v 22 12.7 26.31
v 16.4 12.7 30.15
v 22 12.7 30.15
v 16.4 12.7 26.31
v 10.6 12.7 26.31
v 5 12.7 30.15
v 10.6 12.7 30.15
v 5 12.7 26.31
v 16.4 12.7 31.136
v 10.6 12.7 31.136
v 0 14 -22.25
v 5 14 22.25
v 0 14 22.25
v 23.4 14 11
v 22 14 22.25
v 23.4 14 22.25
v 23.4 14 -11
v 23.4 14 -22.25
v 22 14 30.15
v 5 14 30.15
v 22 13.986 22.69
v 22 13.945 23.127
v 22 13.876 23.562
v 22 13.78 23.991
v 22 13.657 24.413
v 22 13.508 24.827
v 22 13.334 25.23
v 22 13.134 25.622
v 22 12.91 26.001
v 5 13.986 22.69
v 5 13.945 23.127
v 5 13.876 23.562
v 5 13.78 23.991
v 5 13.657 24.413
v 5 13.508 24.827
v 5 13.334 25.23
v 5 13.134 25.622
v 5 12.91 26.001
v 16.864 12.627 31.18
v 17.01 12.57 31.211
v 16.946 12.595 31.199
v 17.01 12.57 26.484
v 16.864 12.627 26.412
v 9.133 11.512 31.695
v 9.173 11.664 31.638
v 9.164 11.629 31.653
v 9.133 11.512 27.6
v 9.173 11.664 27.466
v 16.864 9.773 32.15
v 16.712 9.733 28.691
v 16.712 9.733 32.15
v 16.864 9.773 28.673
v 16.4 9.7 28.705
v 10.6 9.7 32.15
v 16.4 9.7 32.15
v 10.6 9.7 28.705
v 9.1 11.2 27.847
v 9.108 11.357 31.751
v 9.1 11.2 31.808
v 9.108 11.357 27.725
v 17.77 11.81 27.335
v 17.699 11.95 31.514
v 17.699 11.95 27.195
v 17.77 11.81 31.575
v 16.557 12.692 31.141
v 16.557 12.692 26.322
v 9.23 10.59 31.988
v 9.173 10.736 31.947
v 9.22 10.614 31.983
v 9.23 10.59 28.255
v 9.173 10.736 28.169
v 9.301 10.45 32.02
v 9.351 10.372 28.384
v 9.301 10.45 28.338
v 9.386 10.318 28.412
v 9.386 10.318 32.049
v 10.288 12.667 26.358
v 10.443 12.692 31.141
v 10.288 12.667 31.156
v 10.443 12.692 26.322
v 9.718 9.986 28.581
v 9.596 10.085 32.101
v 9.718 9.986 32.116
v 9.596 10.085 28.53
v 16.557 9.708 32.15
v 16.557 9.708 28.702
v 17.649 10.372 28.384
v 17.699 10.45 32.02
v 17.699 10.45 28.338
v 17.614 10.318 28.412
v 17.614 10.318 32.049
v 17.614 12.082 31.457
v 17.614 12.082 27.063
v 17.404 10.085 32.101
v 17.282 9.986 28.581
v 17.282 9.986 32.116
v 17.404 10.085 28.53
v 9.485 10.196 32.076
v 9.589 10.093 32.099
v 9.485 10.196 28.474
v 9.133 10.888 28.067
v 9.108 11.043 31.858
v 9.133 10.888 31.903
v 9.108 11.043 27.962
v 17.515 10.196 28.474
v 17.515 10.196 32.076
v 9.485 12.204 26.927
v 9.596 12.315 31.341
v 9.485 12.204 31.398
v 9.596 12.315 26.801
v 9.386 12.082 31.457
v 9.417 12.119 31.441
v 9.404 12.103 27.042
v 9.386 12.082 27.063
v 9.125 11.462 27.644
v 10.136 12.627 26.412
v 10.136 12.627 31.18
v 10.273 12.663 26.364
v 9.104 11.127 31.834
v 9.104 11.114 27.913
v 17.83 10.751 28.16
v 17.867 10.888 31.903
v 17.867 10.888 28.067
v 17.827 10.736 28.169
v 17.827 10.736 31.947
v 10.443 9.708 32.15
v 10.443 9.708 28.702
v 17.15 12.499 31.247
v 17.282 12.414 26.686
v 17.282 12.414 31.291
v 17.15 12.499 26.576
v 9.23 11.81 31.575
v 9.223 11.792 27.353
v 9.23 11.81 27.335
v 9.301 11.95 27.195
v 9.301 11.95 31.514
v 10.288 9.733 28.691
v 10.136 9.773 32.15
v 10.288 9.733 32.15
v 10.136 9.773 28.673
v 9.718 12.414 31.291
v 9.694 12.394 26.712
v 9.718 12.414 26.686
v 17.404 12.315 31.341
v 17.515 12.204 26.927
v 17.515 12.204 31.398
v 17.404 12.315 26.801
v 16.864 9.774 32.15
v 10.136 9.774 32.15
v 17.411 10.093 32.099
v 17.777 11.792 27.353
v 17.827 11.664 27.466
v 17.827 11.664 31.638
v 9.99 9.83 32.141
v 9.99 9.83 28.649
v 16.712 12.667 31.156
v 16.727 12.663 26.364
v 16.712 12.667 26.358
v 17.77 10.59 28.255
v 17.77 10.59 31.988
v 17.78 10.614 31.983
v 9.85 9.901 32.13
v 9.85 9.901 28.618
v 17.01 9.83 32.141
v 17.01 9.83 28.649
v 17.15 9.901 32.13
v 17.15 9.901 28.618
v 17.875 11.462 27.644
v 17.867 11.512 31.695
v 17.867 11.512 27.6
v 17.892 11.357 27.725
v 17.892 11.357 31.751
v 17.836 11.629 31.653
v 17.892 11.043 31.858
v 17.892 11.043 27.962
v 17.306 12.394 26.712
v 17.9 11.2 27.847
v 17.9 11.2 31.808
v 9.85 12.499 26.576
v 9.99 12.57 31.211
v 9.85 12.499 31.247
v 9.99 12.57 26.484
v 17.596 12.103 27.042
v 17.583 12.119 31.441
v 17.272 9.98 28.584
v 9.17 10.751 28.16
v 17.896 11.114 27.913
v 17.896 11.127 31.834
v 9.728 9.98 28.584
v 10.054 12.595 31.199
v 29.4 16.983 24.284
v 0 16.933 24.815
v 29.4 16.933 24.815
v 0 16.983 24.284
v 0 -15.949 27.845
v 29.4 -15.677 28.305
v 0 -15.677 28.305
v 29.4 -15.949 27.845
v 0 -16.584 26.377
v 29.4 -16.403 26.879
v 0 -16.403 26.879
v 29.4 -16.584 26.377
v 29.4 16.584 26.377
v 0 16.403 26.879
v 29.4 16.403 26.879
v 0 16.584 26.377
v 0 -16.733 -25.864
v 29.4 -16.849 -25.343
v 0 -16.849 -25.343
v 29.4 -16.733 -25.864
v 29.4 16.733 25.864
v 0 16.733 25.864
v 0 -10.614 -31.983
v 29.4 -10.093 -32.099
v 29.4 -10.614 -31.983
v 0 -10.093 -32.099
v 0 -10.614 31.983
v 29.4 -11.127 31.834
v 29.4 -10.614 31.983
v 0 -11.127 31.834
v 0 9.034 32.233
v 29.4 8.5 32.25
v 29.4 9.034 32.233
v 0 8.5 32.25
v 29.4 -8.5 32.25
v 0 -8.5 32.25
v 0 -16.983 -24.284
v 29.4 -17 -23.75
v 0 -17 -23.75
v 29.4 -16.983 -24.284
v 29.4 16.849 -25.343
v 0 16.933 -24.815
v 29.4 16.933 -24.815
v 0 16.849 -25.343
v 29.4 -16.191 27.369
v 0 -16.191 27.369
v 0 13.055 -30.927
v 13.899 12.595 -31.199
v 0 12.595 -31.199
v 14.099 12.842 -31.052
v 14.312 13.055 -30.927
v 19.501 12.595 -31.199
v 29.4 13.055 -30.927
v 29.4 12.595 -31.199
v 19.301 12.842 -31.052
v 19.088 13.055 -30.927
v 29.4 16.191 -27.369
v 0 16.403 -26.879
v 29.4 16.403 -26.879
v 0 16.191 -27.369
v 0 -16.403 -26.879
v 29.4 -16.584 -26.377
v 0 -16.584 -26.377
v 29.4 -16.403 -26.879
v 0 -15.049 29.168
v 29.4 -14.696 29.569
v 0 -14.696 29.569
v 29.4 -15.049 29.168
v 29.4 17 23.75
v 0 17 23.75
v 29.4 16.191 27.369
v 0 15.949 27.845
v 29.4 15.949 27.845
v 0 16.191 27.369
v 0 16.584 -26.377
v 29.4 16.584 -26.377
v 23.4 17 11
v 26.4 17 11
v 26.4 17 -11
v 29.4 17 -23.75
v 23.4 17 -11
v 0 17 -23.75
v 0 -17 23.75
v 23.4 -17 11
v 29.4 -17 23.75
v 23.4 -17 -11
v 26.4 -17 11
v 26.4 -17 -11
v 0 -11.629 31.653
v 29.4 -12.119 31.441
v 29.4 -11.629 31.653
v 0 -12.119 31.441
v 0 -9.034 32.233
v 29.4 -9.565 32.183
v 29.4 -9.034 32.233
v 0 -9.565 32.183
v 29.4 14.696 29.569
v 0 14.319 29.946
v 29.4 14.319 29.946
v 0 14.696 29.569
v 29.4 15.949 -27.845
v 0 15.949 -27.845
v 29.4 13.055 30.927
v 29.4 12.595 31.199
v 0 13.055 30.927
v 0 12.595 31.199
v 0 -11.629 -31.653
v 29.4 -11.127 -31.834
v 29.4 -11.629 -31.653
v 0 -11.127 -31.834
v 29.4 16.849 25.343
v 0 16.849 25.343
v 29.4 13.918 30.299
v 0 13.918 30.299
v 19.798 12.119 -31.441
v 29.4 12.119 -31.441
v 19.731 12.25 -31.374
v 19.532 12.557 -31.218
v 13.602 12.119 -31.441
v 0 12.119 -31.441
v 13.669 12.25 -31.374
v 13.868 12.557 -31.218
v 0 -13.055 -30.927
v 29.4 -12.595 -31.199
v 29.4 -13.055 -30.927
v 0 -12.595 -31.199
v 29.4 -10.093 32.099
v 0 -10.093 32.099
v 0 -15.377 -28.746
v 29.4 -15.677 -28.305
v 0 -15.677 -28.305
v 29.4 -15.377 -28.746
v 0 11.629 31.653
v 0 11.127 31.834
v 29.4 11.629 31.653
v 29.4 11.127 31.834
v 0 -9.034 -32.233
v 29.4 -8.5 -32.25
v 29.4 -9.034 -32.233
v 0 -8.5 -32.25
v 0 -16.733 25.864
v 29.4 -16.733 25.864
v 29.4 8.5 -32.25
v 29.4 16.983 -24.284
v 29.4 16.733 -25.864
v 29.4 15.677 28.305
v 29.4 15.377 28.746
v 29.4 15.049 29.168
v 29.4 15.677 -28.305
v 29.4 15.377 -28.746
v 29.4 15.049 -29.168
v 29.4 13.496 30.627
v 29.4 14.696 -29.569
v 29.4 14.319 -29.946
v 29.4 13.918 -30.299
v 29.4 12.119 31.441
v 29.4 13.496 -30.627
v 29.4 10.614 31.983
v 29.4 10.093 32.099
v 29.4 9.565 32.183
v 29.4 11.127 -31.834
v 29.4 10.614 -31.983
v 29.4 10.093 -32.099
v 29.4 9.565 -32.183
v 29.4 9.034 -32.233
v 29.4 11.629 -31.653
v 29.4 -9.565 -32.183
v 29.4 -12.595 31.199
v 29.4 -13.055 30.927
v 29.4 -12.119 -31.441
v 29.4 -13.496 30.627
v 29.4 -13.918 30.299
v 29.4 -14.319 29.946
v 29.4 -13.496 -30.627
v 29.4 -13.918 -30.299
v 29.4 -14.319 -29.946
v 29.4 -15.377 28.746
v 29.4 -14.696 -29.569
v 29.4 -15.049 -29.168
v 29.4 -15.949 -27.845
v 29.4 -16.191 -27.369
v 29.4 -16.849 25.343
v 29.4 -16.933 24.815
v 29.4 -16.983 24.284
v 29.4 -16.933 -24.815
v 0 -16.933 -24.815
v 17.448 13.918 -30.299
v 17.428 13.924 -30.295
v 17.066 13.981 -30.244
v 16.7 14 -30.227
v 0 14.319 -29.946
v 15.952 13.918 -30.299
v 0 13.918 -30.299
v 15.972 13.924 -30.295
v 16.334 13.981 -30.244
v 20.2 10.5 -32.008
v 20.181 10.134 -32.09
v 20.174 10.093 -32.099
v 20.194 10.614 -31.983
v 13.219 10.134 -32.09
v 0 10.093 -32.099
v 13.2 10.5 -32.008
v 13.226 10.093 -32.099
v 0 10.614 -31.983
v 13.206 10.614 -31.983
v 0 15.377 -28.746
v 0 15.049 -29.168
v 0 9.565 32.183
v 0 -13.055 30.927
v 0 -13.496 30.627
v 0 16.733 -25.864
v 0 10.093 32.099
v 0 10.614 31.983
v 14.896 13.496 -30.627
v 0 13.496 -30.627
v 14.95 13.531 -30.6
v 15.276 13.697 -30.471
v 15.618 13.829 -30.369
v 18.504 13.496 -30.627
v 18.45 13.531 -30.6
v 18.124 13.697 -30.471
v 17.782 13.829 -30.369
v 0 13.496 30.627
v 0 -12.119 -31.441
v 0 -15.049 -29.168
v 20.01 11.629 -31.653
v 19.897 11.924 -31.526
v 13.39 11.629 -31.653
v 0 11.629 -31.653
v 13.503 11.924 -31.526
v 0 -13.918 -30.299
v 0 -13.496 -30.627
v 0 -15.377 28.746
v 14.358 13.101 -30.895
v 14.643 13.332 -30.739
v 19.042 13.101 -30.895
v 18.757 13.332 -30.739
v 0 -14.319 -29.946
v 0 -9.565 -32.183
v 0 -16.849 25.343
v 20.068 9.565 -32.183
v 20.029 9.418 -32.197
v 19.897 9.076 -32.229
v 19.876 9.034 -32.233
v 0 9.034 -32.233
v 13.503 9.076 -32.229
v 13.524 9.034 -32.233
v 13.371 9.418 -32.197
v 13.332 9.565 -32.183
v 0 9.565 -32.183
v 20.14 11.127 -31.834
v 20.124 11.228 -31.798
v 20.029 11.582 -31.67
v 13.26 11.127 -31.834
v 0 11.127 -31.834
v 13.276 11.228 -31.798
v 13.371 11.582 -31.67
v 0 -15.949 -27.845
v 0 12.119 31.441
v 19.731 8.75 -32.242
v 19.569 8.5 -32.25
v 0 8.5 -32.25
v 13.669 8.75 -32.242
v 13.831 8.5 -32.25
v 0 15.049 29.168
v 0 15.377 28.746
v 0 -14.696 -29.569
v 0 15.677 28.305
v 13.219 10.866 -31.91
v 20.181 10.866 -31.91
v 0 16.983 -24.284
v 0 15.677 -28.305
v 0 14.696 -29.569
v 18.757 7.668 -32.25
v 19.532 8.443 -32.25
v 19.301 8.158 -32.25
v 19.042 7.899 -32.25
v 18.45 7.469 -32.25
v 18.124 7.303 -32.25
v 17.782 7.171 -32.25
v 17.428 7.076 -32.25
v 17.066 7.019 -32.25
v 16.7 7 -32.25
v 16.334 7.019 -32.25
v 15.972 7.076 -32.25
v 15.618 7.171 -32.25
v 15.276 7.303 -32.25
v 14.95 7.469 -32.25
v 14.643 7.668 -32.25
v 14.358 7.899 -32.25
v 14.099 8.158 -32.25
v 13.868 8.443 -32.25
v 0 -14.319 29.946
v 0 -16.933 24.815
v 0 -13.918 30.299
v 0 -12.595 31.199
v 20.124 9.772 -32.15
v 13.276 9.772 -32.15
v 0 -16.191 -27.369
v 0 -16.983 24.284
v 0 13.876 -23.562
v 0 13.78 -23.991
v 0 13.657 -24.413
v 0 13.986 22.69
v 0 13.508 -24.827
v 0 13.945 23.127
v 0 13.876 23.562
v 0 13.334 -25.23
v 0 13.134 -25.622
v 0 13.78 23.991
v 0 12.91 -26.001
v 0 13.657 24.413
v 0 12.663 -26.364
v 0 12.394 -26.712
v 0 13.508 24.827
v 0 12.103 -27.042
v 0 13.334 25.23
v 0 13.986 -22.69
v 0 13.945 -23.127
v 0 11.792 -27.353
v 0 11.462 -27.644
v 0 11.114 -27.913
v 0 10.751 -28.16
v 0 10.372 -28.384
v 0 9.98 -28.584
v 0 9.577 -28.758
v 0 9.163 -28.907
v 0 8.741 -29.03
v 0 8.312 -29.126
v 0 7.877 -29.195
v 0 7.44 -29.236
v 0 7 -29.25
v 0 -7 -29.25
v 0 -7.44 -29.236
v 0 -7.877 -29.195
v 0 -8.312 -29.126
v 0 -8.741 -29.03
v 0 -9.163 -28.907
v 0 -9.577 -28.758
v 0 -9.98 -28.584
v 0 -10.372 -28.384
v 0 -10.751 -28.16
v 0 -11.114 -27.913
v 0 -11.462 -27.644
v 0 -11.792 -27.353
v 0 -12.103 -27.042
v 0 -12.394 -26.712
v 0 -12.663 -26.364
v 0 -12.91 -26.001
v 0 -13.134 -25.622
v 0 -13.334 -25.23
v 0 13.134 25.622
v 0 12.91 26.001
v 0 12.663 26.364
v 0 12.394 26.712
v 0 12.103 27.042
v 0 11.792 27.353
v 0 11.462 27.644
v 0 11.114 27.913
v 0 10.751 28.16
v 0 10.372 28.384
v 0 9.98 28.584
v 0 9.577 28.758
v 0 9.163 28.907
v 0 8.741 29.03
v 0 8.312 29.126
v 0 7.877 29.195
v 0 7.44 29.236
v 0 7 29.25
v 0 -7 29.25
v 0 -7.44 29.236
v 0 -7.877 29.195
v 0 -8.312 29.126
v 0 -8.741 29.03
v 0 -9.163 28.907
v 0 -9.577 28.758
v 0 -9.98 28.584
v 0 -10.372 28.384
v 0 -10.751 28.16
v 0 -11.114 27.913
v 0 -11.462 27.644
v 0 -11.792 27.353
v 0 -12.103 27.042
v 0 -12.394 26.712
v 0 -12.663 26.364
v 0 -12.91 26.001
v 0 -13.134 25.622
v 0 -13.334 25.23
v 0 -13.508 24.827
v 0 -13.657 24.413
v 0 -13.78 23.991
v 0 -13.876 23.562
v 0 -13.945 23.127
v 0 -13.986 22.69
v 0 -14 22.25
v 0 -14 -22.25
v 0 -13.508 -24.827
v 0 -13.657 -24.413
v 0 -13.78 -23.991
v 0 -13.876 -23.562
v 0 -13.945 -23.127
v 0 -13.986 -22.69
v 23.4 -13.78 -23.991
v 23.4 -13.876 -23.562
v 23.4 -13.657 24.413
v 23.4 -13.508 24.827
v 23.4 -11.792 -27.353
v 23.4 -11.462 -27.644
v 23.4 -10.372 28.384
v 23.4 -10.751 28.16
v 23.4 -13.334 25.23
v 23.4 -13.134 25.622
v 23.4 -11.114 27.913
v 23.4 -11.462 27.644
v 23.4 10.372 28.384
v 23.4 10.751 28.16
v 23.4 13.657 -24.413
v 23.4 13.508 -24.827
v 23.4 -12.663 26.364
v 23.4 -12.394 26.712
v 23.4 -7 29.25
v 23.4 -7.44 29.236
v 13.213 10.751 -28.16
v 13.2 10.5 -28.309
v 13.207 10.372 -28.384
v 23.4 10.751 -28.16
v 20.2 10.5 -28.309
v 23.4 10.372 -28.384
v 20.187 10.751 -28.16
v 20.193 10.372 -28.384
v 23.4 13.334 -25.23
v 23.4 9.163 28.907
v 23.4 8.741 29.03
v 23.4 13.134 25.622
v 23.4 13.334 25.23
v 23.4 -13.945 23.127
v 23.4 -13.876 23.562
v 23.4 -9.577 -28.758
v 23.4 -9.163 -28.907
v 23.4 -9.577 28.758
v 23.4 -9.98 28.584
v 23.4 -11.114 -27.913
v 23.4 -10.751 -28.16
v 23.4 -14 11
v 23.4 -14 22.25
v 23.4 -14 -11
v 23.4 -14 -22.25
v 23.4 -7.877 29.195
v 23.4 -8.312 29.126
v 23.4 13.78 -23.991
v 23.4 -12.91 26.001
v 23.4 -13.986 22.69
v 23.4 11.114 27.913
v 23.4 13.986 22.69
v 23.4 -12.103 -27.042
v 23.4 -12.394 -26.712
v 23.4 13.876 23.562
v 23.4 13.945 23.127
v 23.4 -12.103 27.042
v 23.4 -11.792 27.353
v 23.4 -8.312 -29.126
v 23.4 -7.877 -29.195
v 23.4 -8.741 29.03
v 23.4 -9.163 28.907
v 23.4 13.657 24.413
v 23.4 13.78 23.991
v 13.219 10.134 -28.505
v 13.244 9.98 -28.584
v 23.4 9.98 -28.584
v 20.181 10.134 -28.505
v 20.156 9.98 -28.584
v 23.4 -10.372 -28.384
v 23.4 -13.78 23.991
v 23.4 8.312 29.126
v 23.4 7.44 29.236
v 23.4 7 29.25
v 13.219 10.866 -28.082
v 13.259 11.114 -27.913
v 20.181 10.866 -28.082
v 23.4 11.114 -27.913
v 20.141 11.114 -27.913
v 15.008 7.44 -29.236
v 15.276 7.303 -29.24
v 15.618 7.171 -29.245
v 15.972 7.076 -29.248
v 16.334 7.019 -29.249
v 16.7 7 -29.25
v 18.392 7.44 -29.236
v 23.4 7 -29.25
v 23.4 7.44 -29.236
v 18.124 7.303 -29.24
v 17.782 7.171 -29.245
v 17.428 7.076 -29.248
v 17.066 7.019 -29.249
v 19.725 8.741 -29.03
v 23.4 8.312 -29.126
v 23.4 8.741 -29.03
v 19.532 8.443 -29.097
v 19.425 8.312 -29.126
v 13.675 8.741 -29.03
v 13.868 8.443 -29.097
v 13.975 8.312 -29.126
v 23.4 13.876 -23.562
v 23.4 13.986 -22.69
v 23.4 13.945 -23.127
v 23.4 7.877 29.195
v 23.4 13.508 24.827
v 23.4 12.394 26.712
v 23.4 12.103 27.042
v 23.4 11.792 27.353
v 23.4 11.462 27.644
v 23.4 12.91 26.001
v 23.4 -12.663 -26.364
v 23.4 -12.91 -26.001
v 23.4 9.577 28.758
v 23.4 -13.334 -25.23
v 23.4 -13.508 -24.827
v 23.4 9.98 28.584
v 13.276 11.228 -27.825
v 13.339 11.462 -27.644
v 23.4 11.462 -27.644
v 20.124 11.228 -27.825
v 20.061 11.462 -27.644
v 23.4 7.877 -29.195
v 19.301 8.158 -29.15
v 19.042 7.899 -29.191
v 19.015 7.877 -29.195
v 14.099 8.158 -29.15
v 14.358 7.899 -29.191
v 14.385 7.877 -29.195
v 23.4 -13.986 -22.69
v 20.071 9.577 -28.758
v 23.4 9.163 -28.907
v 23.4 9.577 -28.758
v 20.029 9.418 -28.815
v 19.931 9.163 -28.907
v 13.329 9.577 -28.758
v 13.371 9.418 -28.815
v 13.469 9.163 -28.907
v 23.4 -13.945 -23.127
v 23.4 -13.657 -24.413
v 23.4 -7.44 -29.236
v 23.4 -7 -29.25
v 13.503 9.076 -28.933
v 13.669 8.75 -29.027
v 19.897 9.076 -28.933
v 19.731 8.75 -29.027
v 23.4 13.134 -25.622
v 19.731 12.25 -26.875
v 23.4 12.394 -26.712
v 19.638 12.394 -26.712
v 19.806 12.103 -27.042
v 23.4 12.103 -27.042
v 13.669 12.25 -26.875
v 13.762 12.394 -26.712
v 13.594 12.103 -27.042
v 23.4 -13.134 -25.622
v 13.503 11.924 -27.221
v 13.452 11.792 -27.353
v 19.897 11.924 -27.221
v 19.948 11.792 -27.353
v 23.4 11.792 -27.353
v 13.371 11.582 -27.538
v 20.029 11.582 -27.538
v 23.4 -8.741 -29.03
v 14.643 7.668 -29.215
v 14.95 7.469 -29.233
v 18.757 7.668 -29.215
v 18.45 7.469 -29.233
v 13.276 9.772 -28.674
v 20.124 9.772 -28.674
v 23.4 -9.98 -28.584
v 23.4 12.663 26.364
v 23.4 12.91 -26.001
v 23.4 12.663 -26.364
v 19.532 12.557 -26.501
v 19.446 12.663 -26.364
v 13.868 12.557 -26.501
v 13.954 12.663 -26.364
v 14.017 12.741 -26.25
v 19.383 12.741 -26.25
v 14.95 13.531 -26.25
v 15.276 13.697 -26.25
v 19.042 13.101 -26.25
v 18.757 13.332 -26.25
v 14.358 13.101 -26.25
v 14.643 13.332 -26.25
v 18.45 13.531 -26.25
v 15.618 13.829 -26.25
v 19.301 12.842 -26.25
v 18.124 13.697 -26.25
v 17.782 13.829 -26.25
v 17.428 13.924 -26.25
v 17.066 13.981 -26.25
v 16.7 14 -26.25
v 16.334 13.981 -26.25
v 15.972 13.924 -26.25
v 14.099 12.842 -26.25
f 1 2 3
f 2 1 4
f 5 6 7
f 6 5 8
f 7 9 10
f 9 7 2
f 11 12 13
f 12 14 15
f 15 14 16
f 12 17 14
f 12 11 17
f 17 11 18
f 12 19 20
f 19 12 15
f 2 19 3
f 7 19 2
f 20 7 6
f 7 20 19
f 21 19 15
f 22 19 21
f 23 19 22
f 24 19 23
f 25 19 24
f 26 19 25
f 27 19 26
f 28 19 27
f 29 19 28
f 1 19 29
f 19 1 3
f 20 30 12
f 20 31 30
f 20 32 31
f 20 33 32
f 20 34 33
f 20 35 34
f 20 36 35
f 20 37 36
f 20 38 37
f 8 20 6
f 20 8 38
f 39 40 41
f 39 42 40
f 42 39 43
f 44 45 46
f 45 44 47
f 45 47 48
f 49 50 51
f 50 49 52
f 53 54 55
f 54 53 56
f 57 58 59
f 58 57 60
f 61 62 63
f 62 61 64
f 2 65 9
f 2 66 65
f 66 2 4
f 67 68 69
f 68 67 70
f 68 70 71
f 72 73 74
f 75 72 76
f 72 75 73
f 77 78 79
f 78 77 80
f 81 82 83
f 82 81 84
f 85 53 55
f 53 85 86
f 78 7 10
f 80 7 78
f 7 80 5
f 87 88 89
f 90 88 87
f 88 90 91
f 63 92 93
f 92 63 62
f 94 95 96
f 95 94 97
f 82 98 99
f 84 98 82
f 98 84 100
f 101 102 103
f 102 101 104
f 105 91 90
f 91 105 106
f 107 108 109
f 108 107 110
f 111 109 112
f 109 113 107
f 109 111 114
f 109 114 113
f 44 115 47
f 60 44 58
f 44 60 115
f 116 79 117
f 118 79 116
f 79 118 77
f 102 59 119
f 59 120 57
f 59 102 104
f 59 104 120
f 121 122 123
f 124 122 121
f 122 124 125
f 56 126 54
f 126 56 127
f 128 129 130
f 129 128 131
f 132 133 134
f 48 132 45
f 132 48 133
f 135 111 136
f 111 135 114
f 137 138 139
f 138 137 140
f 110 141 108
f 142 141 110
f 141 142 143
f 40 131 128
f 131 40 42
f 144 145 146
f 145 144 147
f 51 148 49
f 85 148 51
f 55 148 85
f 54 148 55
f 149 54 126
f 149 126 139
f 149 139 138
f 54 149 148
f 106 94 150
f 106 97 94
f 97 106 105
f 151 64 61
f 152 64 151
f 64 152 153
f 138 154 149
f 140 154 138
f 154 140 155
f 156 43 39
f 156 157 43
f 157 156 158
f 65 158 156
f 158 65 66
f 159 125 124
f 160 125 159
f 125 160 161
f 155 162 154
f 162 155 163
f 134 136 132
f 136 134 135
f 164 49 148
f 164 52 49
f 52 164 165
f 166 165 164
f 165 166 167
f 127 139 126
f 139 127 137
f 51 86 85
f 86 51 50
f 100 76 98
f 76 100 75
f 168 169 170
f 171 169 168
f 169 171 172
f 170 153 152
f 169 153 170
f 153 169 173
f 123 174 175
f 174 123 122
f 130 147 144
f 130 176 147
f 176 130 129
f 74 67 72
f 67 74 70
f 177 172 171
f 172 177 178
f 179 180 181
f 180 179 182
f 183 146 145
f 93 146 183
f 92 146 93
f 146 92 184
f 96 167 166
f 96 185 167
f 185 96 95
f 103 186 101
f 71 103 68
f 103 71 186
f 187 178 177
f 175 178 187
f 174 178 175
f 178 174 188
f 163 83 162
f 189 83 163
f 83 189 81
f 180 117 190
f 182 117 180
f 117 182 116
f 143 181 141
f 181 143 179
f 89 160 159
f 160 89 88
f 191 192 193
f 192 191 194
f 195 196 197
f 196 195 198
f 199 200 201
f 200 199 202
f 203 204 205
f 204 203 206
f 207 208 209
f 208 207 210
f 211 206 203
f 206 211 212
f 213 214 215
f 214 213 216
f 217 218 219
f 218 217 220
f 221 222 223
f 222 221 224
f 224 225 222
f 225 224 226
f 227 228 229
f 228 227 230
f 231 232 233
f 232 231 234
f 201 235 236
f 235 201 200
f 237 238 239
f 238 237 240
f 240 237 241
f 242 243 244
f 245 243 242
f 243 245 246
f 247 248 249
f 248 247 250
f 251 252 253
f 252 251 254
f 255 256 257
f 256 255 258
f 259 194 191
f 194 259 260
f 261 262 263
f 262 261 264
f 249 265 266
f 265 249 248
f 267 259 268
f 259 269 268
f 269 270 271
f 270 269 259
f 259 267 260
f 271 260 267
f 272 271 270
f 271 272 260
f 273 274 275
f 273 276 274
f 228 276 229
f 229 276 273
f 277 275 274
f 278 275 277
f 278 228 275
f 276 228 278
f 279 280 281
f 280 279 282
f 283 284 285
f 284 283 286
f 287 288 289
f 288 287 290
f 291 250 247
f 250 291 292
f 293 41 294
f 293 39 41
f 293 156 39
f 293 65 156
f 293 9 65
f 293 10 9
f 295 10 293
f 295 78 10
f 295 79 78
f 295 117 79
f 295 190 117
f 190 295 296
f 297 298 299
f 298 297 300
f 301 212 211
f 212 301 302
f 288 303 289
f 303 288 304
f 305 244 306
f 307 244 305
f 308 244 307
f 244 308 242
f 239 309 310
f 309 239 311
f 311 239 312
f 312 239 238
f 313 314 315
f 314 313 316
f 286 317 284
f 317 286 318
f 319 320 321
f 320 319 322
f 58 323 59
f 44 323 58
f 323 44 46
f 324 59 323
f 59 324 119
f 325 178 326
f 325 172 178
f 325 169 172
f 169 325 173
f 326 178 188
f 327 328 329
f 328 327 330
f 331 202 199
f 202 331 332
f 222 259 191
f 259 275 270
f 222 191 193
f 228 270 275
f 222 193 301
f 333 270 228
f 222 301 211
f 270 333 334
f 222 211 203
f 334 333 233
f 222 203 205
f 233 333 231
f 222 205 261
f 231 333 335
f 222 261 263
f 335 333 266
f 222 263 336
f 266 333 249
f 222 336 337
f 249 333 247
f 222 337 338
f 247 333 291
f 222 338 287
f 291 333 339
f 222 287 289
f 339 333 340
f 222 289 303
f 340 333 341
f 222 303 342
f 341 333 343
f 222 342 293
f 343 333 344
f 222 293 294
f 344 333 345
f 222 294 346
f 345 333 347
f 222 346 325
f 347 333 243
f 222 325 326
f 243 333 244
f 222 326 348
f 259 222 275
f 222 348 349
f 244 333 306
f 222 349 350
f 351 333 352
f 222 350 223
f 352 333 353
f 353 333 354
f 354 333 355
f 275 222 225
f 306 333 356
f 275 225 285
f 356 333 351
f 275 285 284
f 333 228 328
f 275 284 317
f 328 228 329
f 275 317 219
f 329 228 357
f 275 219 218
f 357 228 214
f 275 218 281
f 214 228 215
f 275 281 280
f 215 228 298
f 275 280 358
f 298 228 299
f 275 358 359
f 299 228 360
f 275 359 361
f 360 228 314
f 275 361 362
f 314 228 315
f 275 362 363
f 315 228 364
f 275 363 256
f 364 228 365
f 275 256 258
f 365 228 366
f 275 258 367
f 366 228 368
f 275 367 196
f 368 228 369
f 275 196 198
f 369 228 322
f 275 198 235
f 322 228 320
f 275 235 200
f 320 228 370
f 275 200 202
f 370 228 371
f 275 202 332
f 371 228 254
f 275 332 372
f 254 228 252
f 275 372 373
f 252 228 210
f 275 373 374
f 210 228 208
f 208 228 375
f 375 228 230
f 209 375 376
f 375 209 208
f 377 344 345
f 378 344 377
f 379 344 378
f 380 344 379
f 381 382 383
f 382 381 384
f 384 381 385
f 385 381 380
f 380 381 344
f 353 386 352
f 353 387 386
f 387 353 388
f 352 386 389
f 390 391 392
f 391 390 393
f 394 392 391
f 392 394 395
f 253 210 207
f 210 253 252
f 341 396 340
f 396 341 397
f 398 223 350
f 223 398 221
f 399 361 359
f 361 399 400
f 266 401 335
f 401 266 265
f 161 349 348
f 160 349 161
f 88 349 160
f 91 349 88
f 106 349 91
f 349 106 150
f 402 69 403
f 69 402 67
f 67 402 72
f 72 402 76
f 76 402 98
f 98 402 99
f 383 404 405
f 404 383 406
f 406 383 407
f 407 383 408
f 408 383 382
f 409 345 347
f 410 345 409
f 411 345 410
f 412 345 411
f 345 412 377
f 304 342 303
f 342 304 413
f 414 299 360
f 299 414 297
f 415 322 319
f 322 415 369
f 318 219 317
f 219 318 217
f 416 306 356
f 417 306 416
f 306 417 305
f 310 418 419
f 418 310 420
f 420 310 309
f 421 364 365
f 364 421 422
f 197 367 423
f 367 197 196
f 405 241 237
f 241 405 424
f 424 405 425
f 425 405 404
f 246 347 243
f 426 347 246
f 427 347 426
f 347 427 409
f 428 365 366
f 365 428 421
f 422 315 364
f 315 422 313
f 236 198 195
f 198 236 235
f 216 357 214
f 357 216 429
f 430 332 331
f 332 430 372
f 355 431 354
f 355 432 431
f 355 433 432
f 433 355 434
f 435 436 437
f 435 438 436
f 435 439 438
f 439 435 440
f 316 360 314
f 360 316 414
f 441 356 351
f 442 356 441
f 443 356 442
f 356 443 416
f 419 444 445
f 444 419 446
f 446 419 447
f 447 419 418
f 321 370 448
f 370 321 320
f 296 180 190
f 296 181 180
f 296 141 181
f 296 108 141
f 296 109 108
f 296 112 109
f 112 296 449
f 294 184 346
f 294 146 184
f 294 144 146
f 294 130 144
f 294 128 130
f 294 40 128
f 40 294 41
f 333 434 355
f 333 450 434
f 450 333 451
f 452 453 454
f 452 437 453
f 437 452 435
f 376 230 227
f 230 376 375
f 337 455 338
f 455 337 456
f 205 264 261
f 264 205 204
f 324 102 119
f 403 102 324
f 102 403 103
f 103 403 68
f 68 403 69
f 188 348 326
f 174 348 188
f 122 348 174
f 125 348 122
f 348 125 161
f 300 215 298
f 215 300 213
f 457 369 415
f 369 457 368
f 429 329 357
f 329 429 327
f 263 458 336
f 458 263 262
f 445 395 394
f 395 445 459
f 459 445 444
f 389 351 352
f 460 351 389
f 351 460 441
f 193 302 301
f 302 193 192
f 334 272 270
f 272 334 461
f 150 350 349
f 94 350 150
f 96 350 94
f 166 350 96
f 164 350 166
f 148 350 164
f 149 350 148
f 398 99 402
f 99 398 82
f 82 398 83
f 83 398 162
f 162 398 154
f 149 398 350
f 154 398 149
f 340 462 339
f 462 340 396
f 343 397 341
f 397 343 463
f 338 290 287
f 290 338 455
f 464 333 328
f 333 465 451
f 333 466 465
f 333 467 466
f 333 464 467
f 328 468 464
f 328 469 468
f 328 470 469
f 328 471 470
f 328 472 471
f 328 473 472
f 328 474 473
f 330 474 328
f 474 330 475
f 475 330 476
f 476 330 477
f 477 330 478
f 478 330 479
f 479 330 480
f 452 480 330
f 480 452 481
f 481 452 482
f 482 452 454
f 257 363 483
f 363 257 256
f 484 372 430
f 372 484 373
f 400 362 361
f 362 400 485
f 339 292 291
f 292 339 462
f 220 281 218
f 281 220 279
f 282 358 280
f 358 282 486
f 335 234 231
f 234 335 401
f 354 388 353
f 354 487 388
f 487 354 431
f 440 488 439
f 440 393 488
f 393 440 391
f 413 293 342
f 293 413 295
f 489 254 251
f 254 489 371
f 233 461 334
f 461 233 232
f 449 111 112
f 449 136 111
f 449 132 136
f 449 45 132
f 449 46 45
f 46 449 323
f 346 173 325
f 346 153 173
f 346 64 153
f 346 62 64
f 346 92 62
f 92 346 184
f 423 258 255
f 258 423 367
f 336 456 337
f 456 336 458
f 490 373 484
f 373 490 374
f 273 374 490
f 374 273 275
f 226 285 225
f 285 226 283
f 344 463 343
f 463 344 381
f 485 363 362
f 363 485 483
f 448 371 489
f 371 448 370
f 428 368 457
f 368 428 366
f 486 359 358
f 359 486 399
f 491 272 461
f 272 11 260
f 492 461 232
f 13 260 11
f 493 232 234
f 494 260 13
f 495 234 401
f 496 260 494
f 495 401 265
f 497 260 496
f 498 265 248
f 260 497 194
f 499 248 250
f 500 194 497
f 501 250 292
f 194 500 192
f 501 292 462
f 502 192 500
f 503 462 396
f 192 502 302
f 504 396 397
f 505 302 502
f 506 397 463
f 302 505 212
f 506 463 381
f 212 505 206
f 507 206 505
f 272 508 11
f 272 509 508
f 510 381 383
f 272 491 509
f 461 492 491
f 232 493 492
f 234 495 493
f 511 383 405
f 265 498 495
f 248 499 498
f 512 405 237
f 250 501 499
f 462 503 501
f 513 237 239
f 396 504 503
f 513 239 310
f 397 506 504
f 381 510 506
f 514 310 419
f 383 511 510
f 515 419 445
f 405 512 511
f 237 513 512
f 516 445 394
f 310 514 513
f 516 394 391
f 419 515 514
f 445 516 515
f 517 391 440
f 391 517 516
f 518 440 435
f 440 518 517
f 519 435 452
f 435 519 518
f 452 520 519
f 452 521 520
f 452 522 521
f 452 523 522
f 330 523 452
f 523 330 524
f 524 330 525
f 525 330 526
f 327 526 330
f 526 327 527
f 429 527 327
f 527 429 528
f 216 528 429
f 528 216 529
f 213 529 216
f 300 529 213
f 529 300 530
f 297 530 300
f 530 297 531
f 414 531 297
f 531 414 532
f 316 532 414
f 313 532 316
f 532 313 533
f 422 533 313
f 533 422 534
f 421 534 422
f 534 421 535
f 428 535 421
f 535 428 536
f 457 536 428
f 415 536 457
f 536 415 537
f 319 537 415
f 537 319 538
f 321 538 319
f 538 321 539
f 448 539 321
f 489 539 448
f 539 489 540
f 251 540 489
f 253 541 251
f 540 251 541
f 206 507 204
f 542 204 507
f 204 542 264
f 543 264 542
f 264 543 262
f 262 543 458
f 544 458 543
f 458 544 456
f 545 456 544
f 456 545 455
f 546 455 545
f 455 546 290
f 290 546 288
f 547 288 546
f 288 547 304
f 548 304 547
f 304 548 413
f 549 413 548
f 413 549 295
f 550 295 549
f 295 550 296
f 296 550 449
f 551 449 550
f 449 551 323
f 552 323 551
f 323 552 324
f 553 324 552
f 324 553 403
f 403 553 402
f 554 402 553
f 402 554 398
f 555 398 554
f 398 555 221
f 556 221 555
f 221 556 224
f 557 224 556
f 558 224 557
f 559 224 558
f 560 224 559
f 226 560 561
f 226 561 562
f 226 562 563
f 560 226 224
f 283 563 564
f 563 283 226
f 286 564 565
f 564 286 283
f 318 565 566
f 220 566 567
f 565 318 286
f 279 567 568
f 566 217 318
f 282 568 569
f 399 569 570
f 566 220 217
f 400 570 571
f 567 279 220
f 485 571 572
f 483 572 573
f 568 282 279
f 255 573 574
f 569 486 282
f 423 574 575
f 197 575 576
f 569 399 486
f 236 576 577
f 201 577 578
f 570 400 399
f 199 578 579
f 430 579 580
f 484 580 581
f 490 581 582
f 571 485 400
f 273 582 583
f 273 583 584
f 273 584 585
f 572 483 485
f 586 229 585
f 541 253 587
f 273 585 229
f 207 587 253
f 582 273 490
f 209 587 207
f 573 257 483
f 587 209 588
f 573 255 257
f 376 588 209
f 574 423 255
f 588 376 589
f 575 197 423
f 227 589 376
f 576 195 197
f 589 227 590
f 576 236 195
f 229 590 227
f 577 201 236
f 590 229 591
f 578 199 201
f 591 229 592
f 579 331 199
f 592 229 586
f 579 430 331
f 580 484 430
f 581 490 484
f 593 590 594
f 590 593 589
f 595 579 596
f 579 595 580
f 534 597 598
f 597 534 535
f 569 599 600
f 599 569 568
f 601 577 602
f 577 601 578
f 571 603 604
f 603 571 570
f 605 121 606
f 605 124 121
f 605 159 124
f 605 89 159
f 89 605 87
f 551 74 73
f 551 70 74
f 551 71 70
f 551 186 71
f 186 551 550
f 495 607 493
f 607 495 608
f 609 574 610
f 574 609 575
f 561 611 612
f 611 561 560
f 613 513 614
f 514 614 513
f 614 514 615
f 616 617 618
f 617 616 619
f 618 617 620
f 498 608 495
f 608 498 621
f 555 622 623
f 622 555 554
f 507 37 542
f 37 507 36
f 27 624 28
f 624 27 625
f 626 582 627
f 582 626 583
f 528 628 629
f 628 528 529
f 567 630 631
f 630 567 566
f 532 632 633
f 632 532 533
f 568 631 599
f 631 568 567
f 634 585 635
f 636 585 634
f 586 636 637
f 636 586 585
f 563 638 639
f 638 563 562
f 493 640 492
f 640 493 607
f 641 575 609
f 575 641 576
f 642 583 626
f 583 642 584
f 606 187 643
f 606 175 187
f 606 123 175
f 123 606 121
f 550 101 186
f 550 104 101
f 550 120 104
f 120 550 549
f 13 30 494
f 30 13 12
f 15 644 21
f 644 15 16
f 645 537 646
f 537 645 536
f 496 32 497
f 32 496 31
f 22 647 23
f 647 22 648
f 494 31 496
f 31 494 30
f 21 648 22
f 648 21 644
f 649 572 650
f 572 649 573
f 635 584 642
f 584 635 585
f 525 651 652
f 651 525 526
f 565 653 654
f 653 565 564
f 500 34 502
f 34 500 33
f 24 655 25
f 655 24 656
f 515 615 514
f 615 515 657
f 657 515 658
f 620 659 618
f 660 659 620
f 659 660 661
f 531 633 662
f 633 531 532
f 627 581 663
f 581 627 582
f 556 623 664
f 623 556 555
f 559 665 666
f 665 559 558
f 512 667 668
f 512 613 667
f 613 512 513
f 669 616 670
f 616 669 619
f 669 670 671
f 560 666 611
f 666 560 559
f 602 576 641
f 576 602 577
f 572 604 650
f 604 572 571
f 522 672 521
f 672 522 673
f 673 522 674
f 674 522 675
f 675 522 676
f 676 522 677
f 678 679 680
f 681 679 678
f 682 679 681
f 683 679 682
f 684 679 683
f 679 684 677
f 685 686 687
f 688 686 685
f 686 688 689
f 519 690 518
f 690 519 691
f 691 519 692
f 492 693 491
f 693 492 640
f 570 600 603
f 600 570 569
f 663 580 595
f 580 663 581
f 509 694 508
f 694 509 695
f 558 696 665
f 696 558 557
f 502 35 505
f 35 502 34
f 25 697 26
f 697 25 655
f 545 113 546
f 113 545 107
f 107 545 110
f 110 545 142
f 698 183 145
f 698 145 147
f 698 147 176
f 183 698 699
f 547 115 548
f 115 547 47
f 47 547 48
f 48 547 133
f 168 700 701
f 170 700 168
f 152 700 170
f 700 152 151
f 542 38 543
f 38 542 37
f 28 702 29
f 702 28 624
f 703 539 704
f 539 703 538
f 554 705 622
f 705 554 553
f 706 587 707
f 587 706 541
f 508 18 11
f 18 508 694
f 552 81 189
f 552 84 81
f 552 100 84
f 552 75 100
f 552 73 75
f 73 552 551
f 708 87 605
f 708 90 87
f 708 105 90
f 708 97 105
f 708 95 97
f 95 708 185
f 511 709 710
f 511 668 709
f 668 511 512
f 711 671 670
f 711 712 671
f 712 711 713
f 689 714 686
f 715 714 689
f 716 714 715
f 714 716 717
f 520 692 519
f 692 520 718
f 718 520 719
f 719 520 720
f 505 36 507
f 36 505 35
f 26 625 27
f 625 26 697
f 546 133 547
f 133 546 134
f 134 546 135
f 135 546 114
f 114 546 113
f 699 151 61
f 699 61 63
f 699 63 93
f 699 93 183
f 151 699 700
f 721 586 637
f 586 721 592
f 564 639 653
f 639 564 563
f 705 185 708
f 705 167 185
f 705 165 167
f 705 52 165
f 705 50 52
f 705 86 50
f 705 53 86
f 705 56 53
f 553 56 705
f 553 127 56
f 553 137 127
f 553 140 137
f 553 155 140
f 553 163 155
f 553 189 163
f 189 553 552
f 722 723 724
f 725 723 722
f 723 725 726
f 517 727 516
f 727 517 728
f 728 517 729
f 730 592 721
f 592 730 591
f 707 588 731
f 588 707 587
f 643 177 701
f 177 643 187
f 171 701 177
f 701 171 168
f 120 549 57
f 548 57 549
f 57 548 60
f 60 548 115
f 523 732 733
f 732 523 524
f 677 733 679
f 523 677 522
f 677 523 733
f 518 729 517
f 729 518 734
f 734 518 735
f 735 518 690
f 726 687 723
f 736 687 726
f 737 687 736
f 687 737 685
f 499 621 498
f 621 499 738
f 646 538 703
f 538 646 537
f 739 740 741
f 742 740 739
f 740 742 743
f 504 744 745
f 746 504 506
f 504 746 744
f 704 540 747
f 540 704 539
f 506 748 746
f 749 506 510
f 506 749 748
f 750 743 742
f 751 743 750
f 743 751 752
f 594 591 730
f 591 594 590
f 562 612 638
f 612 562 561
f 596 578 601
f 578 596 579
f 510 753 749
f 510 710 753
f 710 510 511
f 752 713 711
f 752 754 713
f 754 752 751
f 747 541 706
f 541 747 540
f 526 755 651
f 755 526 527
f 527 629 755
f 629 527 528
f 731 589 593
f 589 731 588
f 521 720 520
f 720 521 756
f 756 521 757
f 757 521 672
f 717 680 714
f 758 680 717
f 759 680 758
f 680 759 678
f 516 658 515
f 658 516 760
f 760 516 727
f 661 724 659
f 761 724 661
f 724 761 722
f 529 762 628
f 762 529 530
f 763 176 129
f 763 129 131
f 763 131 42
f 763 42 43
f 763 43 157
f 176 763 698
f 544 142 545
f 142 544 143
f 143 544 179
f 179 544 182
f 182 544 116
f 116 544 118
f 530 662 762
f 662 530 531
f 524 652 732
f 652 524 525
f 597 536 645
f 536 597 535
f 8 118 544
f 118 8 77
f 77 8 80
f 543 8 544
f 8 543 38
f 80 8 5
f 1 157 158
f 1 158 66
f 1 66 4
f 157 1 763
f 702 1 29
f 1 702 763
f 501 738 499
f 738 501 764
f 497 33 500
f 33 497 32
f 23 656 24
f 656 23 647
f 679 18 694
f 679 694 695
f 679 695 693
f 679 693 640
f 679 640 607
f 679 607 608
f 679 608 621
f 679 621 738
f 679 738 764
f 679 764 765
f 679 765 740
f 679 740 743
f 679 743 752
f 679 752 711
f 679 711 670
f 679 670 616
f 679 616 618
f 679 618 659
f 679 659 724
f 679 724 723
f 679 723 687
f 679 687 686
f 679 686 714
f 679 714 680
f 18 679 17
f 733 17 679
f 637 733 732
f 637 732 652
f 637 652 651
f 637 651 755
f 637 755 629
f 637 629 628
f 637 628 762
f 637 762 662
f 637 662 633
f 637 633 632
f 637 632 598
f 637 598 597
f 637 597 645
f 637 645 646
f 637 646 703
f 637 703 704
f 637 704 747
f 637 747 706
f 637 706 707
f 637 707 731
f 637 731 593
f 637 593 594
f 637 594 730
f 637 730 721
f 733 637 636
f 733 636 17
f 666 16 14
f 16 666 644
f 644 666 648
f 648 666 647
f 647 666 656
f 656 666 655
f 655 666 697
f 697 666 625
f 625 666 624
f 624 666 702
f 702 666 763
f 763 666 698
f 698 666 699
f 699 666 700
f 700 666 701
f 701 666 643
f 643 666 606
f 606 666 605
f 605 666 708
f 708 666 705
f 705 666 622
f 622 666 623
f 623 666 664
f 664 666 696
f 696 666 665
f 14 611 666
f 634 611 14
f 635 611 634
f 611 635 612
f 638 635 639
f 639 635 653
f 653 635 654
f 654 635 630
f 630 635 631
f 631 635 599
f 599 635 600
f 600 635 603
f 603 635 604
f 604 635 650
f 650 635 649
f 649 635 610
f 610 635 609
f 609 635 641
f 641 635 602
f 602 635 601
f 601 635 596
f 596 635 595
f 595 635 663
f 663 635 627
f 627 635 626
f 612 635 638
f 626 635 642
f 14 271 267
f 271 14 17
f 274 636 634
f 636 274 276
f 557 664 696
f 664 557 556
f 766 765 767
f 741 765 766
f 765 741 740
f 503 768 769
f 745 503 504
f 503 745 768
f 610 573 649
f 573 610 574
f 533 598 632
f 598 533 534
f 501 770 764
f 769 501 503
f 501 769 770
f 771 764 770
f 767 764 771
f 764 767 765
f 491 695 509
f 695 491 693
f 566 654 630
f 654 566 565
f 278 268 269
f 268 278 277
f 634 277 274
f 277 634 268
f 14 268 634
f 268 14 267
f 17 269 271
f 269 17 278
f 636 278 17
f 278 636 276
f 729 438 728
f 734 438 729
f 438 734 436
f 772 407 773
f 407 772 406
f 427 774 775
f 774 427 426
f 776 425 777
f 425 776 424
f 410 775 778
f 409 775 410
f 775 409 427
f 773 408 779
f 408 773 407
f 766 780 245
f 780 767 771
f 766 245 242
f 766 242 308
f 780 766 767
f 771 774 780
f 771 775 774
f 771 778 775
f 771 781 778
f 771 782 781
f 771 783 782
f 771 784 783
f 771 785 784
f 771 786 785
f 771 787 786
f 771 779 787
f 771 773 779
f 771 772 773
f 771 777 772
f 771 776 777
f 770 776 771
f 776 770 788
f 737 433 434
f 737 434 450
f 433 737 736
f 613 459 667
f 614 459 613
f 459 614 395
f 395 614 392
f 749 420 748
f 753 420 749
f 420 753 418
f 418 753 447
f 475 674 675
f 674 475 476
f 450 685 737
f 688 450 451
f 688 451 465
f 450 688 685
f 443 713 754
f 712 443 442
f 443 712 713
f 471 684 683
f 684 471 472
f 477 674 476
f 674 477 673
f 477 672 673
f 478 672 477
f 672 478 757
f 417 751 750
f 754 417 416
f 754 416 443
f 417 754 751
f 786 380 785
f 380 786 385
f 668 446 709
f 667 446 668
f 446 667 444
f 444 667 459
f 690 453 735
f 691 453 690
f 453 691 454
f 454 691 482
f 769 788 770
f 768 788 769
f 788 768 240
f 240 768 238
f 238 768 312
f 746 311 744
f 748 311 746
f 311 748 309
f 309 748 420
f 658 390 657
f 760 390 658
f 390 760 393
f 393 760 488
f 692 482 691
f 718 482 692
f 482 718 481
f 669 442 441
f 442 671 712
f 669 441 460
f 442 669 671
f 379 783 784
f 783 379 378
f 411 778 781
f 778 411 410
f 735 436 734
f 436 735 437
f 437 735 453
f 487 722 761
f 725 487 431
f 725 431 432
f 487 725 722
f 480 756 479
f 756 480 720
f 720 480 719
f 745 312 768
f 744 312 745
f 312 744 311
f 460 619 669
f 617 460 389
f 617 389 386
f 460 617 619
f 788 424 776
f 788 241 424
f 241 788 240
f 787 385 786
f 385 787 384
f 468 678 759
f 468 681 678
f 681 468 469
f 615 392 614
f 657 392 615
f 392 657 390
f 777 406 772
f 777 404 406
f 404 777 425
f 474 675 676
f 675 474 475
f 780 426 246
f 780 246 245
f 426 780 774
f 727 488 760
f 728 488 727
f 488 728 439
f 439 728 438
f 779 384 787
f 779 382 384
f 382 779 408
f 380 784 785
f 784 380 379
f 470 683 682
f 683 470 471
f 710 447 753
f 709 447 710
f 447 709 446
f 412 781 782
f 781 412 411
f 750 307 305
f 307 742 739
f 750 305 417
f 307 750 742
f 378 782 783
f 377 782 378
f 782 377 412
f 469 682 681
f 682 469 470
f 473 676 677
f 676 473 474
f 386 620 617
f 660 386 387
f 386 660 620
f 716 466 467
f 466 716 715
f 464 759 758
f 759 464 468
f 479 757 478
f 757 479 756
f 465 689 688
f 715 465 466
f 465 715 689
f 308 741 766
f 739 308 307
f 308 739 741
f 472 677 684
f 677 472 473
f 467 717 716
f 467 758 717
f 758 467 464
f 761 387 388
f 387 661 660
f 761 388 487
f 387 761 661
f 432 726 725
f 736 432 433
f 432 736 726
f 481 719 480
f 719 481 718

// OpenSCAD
include <../../Household/references.scad>

// Define variables for the dimensions and hole positions in millimeters

width_capacitor_transistor_ES = 12;
height_capacitor_transistor_ES = 12;

//extra size to accomodate size of the leds on the glass panel
extra_length_size = 5; 

length_object = 18.4 + extra_length_size;   //X
width_object = 28;    //Y
height_object = 46.5 + width_capacitor_transistor_ES;  //Z



wall_thickness = 3;

length_perimeter = length_object + (wall_thickness*2);
width_perimeter = width_object +(wall_thickness*2);
height_perimeter = height_object +(wall_thickness*2);


module hole_for_lamp(length_parametric,width_parametric,height_parametric){
radius_circles_corner_parametric = (width_parametric/4);
    hull(){
        translate([0,(width_parametric/2)-radius_circles_corner_parametric,(height_parametric/2)-radius_circles_corner_parametric]){
            rotate([0,90,0]){
                color("green")cylinder(h=length_parametric, d=width_parametric/2 , $fn=100);
            }
        }
        translate([0,-(width_parametric/2)+radius_circles_corner_parametric,(height_parametric/2)-radius_circles_corner_parametric]){
            rotate([0,90,0]){
                color("green")cylinder(h=length_parametric, d=width_parametric/2 , $fn=100);
            }
        }
        translate([0,(width_parametric/2)-radius_circles_corner_parametric,-(height_parametric/2)+radius_circles_corner_parametric]){
            rotate([0,90,0]){
                color("green")cylinder(h=length_parametric, d=width_parametric/2 , $fn=100);
            }
        }
        translate([0,-(width_parametric/2)+radius_circles_corner_parametric,-(height_parametric/2)+radius_circles_corner_parametric]){
            rotate([0,90,0]){
                color("green")cylinder(h=length_parametric, d=width_parametric/2 , $fn=100);
            }
        }
    }
                rotate_array_battery_charger=[90,90,0];
    translate_array_battery_charger=[extra_length_size,width_object/2,height_object/2+0.9];
    //scale([1.12,1.12,1.12]){
        battery_charger(rotate_array_battery_charger,translate_array_battery_charger);
    //}


}

difference() {
    hole_for_lamp(length_parametric=length_perimeter,width_parametric=width_perimeter,height_parametric=height_perimeter);
    hole_for_lamp(length_parametric=length_object,width_parametric=width_object,height_parametric=height_object);


    translate([length_object,-(width_perimeter)/2,-VT_width_PT/2]){
       
           color("red")cube([VT_height_PT,width_perimeter,VT_width_PT]);
           }
           
           
               rotate_array_switch=[0,180,0];
    translate_array_switch=[length_object/2+extra_length_size,width_object/2-(SW_AL_tube_width_PT/2),-height_object/2+3];
    custom_cylinder(rotate_input=rotate_array_switch,translate_input=translate_array_switch,diameter_object=SW_AL_tube_width_PT,height_object=wall_thickness+3);
}
  
